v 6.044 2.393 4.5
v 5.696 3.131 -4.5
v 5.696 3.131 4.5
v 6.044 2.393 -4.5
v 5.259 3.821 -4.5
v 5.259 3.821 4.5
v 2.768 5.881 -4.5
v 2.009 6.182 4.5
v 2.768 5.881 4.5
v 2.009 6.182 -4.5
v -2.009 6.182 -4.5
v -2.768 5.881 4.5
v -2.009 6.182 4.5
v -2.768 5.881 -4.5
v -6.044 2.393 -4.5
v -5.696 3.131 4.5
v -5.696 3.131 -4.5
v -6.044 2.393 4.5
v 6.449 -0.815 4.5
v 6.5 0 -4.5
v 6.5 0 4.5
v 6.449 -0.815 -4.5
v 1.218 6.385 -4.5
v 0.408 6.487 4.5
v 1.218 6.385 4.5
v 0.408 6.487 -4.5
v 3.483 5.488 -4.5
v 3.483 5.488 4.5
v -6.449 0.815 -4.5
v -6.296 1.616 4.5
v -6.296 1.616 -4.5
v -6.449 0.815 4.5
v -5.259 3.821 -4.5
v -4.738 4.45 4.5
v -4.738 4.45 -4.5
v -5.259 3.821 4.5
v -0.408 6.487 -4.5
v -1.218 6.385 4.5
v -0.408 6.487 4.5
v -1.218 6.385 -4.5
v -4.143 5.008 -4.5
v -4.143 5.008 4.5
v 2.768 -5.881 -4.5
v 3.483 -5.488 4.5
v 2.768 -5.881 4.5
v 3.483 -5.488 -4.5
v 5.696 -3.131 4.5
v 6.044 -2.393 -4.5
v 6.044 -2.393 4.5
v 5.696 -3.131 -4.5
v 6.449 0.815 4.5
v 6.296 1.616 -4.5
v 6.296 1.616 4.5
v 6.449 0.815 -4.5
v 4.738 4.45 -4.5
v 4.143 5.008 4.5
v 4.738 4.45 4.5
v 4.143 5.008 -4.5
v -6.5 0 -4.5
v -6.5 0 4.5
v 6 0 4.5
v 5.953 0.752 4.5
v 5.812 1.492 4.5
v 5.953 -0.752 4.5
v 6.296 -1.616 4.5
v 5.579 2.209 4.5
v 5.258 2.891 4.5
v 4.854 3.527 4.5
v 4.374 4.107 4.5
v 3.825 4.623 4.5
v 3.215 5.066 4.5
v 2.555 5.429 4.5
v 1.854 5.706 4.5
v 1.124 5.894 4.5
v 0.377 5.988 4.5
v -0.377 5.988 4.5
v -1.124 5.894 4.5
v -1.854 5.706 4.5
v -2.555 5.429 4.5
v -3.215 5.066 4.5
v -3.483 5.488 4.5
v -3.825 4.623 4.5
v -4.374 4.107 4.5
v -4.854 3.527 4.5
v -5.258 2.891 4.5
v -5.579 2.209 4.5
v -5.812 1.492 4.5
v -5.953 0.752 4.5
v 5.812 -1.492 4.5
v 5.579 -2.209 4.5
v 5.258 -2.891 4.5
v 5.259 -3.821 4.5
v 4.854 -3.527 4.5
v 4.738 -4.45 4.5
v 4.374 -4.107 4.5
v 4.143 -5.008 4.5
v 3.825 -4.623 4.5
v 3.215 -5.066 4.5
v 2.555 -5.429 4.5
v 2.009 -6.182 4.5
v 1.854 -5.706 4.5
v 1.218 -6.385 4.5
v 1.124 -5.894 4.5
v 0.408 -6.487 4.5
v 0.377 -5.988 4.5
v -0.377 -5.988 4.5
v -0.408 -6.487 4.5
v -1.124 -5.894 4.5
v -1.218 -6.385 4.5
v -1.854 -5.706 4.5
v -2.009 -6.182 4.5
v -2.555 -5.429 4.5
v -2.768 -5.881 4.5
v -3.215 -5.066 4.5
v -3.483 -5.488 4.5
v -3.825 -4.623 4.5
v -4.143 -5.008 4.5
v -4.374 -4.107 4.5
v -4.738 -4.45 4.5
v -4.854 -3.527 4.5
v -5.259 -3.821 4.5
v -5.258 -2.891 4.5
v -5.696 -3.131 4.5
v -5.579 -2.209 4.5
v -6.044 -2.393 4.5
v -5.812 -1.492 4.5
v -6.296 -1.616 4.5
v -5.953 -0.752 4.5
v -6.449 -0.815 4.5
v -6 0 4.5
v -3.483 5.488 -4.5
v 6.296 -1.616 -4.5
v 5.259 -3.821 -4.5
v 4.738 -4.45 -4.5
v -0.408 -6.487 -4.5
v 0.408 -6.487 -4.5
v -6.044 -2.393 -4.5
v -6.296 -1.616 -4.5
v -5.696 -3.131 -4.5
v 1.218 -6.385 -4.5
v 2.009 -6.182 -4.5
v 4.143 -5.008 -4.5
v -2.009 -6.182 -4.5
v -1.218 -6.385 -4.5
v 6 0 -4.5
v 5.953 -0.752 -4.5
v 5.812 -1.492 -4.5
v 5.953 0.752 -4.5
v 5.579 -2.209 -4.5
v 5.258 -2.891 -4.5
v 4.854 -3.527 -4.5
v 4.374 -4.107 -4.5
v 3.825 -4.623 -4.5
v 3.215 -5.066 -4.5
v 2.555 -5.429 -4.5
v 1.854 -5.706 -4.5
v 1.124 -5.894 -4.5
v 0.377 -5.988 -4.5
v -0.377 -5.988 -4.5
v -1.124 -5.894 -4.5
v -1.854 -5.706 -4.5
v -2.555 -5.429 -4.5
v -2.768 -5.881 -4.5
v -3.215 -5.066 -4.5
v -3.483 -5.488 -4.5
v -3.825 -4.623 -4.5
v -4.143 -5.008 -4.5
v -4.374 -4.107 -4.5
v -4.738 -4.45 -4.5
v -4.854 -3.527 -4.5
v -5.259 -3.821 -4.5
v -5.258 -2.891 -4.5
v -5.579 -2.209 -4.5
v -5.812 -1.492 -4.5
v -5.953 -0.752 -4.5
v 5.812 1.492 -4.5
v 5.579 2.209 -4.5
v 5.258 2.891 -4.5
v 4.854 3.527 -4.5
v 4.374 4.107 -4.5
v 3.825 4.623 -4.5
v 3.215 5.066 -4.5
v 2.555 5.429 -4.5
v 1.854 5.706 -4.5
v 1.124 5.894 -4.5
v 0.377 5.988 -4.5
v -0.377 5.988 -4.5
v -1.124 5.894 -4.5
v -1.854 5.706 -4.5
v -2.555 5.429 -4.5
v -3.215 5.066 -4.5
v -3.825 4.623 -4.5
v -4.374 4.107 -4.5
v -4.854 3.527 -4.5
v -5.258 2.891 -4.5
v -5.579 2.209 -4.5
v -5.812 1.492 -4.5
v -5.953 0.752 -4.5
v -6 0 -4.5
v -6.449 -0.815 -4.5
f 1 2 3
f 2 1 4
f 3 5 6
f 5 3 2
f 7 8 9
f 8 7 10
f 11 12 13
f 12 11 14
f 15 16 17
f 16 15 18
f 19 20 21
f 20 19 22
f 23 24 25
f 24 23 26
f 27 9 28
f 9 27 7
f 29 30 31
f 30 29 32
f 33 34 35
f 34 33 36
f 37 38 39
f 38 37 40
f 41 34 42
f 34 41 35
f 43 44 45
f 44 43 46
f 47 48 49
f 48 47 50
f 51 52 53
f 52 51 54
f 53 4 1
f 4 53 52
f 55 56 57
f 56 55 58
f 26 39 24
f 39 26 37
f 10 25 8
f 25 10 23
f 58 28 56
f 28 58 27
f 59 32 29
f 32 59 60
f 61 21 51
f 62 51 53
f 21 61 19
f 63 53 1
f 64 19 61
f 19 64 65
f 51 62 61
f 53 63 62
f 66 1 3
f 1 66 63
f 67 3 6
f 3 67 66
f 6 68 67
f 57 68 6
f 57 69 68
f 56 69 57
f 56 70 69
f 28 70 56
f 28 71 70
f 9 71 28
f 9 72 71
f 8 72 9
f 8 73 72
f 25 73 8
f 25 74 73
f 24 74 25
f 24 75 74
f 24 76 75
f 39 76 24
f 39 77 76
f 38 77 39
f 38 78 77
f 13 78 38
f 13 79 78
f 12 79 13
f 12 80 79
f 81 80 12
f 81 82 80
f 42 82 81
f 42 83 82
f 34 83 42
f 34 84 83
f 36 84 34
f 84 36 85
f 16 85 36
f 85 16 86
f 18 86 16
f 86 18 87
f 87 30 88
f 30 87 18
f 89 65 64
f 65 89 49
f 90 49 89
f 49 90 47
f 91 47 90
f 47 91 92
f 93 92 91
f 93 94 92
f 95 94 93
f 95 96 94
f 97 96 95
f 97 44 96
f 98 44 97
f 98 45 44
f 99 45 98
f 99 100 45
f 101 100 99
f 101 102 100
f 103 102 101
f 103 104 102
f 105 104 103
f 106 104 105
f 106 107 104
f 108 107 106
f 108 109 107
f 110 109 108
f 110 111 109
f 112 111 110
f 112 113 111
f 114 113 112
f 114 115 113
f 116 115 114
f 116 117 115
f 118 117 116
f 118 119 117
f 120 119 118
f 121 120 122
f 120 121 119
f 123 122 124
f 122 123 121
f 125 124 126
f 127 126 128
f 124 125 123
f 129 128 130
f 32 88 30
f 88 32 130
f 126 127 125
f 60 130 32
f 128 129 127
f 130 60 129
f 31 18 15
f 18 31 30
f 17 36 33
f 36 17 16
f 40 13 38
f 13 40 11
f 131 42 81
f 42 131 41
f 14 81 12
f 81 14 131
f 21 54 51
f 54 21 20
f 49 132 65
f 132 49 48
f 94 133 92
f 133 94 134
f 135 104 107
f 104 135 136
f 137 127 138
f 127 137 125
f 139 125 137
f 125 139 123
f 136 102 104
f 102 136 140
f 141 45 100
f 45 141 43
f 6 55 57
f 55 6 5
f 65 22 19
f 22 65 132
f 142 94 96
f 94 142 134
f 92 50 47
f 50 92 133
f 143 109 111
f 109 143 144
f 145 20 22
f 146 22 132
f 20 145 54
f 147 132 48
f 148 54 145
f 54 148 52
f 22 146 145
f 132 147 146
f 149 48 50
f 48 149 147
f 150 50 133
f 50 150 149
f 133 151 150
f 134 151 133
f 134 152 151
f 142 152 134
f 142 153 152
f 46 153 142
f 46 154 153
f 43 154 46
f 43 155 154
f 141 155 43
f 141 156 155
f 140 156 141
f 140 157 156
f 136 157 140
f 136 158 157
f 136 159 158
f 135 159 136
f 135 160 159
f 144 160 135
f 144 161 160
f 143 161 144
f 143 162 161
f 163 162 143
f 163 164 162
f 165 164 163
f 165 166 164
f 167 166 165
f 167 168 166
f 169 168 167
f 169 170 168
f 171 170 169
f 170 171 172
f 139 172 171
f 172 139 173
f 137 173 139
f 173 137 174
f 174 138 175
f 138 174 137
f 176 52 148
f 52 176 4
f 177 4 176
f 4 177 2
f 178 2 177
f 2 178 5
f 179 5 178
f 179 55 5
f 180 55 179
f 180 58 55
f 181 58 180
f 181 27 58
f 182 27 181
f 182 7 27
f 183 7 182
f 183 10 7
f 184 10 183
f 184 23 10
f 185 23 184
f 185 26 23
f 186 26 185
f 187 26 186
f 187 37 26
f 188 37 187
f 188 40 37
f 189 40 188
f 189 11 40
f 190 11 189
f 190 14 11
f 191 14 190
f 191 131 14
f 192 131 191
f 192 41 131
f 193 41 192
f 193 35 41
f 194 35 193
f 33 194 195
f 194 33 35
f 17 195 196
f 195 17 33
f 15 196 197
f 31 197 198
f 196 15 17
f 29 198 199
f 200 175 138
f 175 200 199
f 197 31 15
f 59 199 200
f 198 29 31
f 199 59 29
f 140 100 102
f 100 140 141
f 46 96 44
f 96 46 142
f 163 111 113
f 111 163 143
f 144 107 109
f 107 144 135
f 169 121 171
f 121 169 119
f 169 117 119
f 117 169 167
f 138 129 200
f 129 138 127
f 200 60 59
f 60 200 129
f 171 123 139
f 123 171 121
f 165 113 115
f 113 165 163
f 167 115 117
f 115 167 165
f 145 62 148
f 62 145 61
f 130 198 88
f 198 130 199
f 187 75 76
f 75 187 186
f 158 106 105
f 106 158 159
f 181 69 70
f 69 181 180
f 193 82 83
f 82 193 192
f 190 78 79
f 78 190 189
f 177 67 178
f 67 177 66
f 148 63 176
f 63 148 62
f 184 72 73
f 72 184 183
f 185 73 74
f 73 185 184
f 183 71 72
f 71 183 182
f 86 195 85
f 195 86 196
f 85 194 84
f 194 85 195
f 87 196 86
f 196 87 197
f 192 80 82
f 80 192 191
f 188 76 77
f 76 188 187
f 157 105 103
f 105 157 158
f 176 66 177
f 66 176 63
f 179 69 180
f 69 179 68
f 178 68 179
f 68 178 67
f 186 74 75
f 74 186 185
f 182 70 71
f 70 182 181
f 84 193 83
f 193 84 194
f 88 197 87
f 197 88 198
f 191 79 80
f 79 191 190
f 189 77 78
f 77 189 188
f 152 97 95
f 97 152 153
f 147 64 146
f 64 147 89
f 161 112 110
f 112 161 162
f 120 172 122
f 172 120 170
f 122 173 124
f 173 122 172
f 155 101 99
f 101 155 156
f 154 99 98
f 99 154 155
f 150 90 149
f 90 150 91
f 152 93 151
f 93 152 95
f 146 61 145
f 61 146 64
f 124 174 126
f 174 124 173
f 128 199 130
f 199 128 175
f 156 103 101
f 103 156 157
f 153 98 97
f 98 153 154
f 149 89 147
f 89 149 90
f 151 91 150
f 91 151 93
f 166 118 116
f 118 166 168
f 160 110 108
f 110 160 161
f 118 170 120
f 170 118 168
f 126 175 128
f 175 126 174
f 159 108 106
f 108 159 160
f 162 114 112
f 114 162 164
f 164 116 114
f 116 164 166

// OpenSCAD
$fn = 50;


difference() {
	union() {
		translate(v = [0, 0, -4.5000000000]) {
			cylinder(h = 9, r = 6.5000000000);
		}
	}
	union() {
		translate(v = [0, 0, -100.0000000000]) {
			cylinder(h = 200, r = 6);
		}
	}
}
